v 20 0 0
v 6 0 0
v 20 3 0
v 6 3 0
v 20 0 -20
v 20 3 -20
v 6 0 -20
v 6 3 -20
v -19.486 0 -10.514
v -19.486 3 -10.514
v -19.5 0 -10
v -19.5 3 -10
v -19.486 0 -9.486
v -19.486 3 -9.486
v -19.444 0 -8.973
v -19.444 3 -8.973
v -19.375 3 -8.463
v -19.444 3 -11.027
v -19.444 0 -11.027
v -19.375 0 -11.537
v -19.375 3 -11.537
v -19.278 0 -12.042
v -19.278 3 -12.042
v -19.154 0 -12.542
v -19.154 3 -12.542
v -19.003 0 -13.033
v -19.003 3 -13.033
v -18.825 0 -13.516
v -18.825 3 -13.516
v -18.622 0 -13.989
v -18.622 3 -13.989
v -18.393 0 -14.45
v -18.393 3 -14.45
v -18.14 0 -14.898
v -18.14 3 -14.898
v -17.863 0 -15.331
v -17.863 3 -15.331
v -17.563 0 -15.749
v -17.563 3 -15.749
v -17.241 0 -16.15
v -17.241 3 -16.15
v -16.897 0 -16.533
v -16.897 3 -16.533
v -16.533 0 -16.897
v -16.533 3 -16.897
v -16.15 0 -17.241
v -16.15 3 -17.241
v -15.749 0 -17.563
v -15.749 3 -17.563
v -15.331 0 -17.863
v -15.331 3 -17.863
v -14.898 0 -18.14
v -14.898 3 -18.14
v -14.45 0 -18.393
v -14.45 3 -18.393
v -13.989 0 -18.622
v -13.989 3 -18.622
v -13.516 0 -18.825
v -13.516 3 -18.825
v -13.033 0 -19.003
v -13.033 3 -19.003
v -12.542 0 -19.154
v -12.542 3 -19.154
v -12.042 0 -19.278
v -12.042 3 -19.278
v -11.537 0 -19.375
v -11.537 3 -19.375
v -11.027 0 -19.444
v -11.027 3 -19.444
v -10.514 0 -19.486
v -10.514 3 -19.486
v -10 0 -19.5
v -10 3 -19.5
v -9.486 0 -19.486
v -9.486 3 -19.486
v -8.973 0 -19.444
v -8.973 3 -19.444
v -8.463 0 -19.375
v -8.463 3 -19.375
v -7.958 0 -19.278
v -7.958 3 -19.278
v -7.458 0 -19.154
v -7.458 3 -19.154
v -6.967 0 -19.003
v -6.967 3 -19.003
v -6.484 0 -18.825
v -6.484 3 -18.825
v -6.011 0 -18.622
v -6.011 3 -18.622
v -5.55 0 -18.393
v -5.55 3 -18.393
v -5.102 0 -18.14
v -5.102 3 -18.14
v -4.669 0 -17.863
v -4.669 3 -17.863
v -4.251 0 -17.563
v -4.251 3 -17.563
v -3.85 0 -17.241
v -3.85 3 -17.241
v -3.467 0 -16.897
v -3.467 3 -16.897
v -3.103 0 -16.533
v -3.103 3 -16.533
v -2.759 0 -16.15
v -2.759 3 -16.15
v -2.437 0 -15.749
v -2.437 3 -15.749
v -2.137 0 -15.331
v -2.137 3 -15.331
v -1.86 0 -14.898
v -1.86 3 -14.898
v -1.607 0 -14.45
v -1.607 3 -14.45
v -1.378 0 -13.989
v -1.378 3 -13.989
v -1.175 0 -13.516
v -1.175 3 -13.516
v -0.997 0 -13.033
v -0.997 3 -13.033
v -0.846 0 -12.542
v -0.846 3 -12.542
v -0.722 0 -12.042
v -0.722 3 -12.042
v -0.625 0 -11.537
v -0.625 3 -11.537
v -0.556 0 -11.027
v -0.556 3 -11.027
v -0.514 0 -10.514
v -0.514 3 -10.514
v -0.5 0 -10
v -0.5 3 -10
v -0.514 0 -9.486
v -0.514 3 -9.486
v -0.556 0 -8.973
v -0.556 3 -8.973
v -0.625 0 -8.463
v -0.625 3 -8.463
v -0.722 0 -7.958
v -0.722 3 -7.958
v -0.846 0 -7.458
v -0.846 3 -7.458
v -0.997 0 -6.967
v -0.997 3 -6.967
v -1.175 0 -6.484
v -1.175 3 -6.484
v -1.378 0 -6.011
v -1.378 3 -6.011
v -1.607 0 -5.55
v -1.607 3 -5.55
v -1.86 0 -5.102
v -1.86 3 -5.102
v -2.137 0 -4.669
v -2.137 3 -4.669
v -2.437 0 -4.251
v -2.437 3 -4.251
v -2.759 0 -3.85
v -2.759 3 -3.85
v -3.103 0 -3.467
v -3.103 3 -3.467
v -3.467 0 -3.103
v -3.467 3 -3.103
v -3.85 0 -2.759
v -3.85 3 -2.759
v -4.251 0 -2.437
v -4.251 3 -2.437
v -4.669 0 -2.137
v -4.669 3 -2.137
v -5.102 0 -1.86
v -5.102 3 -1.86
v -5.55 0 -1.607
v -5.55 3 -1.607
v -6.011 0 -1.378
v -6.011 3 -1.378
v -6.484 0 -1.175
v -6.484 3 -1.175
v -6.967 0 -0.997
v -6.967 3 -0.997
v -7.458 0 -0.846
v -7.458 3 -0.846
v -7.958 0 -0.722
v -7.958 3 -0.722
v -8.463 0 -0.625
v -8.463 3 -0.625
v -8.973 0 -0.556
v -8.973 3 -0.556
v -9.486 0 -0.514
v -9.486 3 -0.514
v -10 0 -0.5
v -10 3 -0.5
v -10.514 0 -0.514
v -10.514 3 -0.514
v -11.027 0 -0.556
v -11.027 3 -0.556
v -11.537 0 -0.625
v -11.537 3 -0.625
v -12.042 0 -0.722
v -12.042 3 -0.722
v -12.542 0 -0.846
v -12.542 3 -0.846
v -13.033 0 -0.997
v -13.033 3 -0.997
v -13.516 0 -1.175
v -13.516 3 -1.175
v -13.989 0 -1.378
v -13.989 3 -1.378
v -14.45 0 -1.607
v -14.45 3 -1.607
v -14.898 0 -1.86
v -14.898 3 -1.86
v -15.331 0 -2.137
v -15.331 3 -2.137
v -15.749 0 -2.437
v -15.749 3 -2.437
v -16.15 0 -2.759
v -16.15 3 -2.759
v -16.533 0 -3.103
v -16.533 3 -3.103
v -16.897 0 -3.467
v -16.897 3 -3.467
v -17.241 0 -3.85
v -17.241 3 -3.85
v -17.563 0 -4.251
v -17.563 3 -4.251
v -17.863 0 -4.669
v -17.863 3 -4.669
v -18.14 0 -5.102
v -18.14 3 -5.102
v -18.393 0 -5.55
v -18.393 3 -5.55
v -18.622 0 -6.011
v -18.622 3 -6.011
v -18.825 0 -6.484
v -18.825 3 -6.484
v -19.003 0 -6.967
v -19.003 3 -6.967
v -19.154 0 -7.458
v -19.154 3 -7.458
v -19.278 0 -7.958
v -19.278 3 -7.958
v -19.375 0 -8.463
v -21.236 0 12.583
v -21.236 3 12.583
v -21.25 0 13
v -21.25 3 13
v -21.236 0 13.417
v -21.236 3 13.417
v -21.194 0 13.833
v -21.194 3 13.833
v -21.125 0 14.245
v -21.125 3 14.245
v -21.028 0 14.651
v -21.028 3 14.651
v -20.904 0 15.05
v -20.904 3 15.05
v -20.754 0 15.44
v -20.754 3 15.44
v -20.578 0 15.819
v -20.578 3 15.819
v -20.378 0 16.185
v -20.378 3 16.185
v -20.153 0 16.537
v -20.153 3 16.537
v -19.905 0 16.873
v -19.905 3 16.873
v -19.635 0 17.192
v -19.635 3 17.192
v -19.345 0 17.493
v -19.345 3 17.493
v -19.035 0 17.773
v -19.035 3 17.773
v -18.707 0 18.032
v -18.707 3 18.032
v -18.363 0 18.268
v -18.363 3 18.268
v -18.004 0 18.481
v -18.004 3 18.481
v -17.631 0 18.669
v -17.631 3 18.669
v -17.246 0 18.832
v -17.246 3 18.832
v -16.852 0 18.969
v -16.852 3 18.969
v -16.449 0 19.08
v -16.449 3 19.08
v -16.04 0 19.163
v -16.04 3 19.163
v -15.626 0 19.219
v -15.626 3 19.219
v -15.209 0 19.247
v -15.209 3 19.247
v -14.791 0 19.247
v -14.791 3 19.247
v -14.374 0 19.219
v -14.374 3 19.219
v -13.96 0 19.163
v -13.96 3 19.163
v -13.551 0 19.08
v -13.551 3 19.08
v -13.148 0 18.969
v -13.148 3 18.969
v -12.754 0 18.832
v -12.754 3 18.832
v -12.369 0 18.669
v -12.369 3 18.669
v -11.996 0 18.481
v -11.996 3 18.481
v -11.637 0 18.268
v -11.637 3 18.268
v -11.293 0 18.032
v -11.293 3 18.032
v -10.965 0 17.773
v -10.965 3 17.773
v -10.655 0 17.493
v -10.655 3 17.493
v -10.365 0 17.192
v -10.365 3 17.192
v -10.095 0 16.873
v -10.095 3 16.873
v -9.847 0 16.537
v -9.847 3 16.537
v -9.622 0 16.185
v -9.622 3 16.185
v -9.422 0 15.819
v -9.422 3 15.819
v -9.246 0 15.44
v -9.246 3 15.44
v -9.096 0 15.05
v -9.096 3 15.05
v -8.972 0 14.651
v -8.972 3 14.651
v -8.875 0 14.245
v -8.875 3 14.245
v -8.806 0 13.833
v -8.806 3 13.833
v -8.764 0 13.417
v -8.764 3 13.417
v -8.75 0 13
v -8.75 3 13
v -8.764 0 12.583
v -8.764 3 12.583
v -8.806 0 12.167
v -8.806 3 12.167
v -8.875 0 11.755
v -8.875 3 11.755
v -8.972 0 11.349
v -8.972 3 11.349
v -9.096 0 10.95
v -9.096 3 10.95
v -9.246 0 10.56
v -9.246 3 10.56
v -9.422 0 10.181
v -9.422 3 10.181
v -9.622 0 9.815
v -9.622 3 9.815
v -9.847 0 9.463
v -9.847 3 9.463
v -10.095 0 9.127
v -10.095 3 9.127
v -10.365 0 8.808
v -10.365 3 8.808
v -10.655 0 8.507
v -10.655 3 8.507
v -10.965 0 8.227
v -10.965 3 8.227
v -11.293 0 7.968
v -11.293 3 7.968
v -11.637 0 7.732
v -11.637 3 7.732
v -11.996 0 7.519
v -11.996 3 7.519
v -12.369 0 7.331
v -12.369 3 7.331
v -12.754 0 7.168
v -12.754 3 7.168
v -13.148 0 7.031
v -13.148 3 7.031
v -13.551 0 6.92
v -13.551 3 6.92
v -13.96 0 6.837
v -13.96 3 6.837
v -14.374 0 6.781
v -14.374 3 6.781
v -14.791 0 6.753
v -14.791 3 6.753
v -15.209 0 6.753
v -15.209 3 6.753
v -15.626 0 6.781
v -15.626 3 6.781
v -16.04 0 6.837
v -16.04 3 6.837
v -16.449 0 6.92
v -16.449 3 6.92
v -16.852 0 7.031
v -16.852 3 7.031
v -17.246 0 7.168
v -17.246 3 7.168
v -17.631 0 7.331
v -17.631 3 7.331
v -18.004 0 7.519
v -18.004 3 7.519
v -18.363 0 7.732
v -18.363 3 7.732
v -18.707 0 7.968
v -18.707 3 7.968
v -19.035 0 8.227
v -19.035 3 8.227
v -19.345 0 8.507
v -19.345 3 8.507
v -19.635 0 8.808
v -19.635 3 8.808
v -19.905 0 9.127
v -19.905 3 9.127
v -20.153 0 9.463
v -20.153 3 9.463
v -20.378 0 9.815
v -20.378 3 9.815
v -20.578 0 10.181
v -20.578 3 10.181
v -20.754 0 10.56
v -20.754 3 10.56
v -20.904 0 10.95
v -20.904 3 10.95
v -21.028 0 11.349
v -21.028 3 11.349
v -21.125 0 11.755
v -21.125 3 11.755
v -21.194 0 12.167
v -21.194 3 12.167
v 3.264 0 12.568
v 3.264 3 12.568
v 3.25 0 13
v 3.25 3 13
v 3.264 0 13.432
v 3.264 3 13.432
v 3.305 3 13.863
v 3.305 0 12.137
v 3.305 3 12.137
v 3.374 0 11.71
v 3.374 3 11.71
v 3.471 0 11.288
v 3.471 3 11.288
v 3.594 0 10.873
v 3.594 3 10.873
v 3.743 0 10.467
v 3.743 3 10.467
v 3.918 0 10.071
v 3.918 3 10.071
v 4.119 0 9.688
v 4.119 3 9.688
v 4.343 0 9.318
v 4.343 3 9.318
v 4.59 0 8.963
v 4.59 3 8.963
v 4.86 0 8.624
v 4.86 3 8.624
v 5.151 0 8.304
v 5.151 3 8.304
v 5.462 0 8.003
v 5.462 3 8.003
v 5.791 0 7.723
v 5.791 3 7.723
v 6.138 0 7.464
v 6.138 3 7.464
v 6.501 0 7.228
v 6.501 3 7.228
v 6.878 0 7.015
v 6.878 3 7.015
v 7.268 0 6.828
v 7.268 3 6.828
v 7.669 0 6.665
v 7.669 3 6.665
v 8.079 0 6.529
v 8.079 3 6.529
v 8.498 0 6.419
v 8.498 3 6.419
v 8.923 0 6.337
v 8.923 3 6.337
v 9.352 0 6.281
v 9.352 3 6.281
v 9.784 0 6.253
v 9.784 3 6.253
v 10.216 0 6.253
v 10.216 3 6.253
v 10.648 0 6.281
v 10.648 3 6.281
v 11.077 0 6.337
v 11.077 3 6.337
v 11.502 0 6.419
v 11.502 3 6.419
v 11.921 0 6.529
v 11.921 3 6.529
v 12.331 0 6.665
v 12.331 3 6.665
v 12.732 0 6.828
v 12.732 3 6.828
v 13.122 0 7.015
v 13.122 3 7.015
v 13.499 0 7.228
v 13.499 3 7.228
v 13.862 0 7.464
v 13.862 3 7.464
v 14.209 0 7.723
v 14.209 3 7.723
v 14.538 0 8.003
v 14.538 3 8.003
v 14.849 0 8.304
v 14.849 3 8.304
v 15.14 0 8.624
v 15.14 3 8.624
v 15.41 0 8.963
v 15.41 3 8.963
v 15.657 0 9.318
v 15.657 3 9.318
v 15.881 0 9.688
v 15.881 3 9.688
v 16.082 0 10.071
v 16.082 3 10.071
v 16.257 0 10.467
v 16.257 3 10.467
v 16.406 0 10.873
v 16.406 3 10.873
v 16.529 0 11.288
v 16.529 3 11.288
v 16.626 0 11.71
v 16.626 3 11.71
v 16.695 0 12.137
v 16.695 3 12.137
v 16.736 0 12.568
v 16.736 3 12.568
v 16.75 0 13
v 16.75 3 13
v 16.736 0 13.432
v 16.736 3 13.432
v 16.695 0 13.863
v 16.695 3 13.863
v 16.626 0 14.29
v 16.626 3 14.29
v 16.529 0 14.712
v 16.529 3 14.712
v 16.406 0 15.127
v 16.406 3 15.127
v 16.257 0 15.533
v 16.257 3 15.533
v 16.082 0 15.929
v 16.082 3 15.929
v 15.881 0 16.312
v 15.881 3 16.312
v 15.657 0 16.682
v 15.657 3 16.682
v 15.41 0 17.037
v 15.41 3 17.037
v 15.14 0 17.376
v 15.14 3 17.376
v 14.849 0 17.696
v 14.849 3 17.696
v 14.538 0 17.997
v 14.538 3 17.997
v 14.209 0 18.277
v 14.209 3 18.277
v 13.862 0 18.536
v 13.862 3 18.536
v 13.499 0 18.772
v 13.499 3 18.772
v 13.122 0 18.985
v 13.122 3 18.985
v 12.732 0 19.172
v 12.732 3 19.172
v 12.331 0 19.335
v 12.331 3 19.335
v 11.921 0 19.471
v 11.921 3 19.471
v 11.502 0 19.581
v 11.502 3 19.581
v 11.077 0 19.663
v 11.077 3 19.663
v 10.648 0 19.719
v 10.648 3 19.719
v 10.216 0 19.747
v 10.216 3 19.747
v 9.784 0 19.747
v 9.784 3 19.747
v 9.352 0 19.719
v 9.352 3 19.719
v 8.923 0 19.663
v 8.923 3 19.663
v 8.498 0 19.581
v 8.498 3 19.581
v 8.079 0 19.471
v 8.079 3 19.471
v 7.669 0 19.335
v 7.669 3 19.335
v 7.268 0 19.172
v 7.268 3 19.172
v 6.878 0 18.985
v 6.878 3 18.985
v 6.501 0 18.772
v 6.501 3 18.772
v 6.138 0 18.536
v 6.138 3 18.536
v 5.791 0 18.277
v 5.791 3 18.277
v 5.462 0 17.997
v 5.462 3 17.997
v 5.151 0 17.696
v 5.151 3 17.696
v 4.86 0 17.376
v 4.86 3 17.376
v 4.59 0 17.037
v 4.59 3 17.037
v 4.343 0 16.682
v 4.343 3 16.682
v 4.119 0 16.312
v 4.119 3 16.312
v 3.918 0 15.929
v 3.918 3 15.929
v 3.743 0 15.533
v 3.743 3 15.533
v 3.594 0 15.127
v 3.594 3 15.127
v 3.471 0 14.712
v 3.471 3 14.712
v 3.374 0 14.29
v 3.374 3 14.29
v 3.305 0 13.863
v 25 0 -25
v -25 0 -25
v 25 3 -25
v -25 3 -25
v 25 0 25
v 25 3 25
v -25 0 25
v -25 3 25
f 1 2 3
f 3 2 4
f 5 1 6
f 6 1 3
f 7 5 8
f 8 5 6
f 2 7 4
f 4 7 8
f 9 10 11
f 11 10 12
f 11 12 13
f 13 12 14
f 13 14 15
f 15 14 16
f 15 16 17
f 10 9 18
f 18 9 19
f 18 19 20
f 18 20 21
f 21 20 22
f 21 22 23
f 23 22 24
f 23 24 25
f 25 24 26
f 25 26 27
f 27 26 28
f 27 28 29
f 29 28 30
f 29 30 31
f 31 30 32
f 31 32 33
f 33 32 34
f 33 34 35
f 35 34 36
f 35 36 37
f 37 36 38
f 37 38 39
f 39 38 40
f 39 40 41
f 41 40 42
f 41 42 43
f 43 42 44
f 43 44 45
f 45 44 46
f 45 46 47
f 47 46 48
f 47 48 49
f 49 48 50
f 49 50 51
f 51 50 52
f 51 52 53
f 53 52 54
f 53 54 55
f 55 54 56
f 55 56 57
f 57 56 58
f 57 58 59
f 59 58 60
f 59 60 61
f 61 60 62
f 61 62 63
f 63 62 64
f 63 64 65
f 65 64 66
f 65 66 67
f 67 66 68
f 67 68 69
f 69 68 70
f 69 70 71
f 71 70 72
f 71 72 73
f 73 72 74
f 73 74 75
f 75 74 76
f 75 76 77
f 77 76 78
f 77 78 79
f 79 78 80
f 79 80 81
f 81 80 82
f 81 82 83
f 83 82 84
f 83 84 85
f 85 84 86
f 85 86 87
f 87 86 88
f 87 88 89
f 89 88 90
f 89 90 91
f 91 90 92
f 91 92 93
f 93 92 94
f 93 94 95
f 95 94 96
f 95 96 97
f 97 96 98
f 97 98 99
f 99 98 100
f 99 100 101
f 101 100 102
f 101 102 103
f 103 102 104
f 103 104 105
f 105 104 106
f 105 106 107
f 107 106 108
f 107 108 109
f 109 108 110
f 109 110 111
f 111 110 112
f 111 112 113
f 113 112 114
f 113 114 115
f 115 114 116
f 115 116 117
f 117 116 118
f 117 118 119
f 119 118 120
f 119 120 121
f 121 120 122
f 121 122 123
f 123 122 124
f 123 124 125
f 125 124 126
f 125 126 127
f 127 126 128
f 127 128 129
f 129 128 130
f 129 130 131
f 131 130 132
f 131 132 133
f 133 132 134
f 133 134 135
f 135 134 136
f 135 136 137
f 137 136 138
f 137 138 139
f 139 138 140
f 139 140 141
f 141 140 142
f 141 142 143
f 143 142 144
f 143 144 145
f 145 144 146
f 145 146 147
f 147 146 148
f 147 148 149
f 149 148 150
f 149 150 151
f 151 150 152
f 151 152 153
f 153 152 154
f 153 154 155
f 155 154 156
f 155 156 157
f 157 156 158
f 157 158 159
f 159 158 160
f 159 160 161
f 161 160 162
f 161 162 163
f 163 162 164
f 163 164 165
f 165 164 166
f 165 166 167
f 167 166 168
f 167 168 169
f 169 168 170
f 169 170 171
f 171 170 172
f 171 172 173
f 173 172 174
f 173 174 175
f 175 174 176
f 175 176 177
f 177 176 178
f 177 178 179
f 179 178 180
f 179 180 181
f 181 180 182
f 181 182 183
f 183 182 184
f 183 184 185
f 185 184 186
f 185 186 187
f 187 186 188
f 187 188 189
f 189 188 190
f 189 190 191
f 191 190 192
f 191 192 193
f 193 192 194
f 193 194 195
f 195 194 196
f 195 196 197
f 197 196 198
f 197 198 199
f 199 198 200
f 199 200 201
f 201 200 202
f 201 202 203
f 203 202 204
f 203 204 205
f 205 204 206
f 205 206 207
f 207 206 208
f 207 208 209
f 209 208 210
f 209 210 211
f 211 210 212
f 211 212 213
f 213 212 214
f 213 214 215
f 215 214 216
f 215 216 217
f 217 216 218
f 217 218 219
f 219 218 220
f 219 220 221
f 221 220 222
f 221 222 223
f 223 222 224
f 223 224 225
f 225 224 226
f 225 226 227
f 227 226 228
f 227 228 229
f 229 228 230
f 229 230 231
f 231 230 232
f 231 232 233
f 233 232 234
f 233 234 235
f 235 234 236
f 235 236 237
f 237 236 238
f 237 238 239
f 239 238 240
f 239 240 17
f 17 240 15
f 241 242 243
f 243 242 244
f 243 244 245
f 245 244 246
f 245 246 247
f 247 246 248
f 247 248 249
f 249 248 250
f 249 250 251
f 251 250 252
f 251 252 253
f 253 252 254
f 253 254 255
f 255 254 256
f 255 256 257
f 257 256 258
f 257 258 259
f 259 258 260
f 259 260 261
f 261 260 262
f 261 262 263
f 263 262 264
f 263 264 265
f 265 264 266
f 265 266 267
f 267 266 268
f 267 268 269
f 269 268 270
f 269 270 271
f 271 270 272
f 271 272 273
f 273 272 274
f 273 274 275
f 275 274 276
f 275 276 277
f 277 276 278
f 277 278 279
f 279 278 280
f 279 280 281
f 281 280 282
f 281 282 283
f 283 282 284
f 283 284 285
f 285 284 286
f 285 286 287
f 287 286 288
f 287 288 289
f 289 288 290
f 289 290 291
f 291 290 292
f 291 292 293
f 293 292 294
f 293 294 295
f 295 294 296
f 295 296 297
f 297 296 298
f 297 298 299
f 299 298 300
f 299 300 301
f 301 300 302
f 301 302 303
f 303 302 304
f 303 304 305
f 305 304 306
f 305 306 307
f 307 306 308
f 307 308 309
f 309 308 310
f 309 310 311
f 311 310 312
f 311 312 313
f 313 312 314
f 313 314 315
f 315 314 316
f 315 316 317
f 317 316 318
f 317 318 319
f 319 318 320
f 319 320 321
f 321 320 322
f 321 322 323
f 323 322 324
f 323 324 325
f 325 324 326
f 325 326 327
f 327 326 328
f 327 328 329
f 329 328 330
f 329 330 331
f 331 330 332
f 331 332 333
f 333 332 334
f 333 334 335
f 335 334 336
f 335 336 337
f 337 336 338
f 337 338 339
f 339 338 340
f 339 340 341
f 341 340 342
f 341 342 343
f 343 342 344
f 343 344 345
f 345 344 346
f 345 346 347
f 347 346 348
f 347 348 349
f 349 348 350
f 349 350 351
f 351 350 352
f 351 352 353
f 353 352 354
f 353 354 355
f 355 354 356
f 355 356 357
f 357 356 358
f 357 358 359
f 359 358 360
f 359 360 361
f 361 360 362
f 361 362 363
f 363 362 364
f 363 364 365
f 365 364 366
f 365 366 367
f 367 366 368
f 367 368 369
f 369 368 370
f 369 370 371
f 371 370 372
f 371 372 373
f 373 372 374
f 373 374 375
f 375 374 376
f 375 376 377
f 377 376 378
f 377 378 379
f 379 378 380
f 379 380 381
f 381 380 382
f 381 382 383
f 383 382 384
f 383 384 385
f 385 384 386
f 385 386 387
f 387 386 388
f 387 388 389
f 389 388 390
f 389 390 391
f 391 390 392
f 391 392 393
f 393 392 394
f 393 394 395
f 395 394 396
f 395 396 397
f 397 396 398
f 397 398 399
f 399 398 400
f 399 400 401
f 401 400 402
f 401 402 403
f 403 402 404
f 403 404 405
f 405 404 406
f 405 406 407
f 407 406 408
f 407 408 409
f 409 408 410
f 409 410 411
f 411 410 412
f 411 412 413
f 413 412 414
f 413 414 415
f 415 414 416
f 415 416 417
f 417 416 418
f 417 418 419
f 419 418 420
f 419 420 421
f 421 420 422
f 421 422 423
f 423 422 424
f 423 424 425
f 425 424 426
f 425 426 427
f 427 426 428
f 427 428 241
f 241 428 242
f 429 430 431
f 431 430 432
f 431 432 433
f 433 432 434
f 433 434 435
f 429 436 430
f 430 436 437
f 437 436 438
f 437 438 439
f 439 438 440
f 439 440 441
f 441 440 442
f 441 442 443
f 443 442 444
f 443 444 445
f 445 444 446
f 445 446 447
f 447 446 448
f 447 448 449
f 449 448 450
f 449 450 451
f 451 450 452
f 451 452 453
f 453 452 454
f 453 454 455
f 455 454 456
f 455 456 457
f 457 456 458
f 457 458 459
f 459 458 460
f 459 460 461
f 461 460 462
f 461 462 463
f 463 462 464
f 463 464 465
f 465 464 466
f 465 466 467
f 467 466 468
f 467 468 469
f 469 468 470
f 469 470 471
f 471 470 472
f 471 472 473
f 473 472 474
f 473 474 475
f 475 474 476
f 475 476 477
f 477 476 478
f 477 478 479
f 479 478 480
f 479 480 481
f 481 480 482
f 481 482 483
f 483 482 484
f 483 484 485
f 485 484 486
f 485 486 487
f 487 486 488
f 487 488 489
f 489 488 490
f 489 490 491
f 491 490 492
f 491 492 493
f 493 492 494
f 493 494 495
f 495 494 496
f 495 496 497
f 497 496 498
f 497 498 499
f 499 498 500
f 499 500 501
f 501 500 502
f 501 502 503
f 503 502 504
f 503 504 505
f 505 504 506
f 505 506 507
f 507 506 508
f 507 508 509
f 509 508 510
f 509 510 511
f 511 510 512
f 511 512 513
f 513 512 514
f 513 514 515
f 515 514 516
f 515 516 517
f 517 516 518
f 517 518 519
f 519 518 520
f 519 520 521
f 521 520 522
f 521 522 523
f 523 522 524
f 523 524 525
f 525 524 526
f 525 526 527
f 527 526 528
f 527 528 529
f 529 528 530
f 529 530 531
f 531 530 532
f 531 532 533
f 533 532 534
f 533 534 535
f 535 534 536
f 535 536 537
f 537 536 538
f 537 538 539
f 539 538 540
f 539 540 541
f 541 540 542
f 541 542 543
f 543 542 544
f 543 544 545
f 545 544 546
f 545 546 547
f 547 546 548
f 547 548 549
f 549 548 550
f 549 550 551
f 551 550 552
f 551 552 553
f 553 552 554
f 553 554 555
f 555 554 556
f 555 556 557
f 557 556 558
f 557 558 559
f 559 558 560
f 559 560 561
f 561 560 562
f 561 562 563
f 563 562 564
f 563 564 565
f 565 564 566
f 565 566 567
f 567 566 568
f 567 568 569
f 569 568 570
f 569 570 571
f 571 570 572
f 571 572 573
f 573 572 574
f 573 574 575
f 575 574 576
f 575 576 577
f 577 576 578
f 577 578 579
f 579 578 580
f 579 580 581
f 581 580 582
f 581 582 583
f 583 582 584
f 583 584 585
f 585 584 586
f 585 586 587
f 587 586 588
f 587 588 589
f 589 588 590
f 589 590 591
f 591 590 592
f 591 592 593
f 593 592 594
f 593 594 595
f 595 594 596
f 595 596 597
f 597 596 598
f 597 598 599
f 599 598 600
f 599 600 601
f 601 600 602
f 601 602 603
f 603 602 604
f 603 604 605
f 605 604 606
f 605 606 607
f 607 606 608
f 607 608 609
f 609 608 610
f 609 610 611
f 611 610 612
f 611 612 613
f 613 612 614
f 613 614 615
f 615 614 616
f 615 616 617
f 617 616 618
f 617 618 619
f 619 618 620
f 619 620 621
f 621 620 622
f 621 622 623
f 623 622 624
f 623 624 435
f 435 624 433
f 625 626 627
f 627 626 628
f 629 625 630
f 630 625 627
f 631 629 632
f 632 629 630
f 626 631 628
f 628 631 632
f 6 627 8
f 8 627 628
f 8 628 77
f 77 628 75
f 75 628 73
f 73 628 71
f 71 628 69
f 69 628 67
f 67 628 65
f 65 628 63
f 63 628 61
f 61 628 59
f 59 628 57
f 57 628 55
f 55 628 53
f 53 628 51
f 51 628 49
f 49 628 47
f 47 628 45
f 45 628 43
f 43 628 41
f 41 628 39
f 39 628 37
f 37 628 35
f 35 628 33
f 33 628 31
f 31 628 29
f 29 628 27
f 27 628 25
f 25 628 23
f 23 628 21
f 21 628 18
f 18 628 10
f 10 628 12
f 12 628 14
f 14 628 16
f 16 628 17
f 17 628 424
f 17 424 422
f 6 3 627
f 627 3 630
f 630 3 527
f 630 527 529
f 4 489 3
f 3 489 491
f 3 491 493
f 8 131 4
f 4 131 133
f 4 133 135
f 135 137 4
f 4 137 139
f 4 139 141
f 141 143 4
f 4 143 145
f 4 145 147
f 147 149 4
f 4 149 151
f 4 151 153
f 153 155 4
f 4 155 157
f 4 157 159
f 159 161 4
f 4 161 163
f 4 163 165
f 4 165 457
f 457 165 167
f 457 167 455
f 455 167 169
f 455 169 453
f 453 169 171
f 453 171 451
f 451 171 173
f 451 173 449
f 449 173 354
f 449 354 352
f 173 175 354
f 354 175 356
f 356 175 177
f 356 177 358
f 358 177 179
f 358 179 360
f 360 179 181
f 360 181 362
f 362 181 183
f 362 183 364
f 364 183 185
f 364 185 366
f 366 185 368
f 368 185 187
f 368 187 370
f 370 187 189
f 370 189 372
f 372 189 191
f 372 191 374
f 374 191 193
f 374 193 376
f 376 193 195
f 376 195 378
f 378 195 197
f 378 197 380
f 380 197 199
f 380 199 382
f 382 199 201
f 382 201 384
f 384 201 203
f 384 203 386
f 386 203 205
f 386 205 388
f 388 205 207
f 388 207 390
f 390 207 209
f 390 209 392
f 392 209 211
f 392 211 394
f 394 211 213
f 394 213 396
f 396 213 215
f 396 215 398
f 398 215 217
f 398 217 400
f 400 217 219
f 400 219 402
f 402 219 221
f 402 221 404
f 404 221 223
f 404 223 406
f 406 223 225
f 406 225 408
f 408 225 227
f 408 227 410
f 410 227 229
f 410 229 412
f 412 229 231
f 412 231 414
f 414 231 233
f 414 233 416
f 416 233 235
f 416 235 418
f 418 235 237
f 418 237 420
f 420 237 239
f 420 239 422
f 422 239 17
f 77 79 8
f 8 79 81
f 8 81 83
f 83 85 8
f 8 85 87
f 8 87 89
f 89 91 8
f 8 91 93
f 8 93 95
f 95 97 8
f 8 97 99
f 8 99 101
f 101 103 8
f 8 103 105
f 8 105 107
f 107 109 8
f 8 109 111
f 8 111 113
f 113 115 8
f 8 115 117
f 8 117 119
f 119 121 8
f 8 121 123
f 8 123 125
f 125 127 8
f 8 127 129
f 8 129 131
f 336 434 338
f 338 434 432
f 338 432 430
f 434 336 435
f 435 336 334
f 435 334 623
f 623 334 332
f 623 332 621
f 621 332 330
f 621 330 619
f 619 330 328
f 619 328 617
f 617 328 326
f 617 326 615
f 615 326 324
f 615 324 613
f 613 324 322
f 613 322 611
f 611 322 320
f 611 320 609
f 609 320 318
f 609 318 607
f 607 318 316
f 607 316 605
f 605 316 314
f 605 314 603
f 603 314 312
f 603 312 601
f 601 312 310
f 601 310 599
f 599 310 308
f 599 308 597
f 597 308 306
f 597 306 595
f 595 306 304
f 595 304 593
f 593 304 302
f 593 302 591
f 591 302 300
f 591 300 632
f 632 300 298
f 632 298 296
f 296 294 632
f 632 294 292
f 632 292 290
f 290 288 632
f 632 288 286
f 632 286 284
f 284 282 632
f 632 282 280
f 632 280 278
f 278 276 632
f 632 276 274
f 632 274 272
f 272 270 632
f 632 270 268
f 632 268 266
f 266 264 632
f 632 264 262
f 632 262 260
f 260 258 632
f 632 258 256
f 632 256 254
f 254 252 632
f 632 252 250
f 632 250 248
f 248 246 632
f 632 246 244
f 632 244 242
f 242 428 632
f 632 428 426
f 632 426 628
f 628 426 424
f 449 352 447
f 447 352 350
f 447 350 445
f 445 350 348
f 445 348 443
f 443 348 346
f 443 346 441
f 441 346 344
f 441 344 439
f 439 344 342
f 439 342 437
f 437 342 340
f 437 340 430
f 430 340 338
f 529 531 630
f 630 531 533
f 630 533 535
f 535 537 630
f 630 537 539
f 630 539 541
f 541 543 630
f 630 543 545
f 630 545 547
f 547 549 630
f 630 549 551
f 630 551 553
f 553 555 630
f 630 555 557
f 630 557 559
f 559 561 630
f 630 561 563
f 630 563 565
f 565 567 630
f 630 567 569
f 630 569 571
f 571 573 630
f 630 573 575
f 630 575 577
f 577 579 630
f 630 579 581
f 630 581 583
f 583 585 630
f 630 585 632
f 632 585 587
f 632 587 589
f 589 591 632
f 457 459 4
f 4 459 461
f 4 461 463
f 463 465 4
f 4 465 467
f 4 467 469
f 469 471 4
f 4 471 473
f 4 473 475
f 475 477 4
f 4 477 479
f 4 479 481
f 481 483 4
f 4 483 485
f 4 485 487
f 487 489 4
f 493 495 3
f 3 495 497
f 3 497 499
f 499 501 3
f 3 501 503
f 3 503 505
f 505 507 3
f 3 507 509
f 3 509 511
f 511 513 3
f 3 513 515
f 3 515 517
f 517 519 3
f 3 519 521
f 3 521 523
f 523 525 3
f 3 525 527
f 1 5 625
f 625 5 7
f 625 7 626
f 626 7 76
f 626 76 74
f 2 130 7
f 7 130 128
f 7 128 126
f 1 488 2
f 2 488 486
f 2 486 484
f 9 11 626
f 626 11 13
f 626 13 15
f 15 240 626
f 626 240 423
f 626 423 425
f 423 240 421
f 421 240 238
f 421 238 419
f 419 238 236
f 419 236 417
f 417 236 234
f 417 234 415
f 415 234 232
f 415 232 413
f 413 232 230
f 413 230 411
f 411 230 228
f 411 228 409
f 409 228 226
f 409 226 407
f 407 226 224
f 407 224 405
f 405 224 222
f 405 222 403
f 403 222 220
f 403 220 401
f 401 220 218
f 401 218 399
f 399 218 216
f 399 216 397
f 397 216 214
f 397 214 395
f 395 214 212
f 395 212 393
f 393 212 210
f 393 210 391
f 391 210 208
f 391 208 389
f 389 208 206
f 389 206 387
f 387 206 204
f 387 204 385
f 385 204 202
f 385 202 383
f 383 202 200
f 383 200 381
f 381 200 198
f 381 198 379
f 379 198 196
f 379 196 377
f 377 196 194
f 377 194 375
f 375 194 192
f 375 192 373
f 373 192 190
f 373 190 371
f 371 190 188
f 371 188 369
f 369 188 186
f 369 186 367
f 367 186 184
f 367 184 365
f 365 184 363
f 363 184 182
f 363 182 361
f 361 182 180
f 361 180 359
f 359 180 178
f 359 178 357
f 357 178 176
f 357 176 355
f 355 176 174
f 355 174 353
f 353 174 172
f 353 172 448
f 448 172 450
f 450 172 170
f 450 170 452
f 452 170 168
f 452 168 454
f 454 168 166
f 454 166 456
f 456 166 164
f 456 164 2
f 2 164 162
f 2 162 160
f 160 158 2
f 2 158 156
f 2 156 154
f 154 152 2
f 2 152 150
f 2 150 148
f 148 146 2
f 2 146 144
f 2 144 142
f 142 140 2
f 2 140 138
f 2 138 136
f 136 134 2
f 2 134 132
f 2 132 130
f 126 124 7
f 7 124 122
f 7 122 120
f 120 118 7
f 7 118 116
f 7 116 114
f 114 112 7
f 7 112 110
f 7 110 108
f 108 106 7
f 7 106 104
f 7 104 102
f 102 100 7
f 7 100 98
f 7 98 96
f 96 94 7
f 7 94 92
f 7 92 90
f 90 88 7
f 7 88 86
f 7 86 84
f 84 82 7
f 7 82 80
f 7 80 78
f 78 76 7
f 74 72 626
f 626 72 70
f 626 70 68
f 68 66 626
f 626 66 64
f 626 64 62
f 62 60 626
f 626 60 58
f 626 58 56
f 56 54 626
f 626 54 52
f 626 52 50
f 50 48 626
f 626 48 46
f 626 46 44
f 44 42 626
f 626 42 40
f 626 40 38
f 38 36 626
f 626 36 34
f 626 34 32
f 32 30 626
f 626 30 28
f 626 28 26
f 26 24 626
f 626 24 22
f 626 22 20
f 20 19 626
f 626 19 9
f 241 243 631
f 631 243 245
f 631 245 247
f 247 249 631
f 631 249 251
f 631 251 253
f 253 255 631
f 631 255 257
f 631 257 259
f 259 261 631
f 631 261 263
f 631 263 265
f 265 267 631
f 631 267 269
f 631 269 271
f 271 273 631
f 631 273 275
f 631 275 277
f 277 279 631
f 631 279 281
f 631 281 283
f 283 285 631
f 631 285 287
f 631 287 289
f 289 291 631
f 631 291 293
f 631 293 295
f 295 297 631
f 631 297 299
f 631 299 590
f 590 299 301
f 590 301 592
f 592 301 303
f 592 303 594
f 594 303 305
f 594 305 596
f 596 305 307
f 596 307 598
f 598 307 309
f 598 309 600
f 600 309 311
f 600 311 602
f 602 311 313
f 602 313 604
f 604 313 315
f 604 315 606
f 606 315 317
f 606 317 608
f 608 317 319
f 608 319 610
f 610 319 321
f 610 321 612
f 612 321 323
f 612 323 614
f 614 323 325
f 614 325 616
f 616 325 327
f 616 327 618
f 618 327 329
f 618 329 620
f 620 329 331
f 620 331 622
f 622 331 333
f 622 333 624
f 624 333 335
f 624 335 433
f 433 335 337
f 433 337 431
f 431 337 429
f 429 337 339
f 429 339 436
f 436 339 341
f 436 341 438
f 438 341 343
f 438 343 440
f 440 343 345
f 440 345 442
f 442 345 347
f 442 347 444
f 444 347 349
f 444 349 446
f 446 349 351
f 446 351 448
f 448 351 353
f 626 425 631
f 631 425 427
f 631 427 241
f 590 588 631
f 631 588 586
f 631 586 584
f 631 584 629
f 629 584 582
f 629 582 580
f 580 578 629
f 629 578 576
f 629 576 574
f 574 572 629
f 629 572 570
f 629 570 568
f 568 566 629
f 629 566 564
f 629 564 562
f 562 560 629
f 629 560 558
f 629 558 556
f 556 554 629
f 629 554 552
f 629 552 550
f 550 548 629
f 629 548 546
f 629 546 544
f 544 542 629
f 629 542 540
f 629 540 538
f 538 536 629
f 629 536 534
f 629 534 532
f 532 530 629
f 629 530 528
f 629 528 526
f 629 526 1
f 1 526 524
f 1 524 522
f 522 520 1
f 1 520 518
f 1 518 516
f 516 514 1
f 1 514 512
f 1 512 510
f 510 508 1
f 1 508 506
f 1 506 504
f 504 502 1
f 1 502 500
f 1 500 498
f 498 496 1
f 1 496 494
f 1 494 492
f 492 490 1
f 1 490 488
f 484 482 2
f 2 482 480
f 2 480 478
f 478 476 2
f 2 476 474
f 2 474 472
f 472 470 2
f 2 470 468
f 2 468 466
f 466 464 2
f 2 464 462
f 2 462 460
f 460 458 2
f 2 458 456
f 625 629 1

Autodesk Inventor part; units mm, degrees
ref_plane "YZ Plane" through (0, 0, 0) normal (1, 0, 0) x (0, 1, 0)
ref_plane "XZ Plane" through (0, 0, 0) normal (0, 1, 0) x (-1, 0, 0)
ref_plane "XY Plane" through (0, 0, 0) normal (0, 0, 1) x (1, 0, 0)
sketch "Sketch1" plane through (0, 0, 0) normal (0, 1, 0) x (-1, 0, 0)
  line L0 (-25, -25) -> (25, -25)
  line L1 (25, -25) -> (25, 25)
  line L2 (25, 25) -> (-25, 25)
  line L3 (-25, 25) -> (-25, -25)
  line L4 (-25, -25) -> (25, 25) construction
  line L5 (25, -25) -> (-25, 25) construction
  point P0 (0, 0)
  dimension "d7" = 50
  dimension "d8" = 50
extrude "Base plate" add sketch "Sketch1" along normal blind 3
sketch "Sketch2" plane through (0, 3, 0) normal (0, 1, 0) x (1, 0, 0)
  circle A0 centre (10, -13) radius 6.75
  line L0 (-25, 25) -> (-25, -25) projected
  line L1 (-25, -25) -> (25, -25) projected
  point P0 (0, 0)
  dimension "d2" = 13.5
  dimension "d3" = 35
  dimension "d4" = 12
extrude "Tuimel" cut sketch "Sketch2" against normal through all
sketch "Sketch3" plane through (0, 3, 0) normal (0, 1, 0) x (1, 0, 0)
  circle A0 centre (-15, -13) radius 6.25
  line L0 (-25, 25) -> (-25, -25) projected
  line L1 (-25, -25) -> (25, -25) projected
  point P0 (0, 0)
  point P1 (5.9214, -25)
  point P2 (-5.9214, -25)
  dimension "d9" = 12.5
  dimension "d10" = 10
  dimension "d11" = 12
extrude "Button" cut sketch "Sketch3" against normal through all
sketch "Sketch5" plane through (0, 3, 0) normal (0, 1, 0) x (1, 0, 0)
  circle A0 centre (-10, 10) radius 9.5
  line L0 (-25, 25) -> (-25, -25) projected
  line L1 (-25, -25) -> (25, -25) projected
  point P0 (0, 0)
  dimension "d19" = 19
  dimension "d20" = 15
  dimension "d21" = 35
extrude "Sleutel 19" cut sketch "Sketch5" against normal through all
sketch "Sketch6" plane through (0, 3, 0) normal (0, 1, 0) x (1, 0, 0)
  line L0 (6, 0) -> (20, 0)
  line L1 (20, 0) -> (20, 20)
  line L2 (20, 20) -> (6, 20)
  line L3 (6, 20) -> (6, 0)
  line L4 (6, 0) -> (20, 20) construction
  line L5 (20, 0) -> (6, 20) construction
  line L6 (25, 25) -> (-25, 25) projected
  line L7 (25, -25) -> (25, 25) projected
  point P0 (0, 0)
  point P1 (13, 10)
  dimension "d24" = 14
  dimension "d25" = 20
  dimension "d26" = 5
  dimension "d27" = 5
extrude "Schakelaar" cut sketch "Sketch6" against normal through all
properties part number "Holes_Test"
